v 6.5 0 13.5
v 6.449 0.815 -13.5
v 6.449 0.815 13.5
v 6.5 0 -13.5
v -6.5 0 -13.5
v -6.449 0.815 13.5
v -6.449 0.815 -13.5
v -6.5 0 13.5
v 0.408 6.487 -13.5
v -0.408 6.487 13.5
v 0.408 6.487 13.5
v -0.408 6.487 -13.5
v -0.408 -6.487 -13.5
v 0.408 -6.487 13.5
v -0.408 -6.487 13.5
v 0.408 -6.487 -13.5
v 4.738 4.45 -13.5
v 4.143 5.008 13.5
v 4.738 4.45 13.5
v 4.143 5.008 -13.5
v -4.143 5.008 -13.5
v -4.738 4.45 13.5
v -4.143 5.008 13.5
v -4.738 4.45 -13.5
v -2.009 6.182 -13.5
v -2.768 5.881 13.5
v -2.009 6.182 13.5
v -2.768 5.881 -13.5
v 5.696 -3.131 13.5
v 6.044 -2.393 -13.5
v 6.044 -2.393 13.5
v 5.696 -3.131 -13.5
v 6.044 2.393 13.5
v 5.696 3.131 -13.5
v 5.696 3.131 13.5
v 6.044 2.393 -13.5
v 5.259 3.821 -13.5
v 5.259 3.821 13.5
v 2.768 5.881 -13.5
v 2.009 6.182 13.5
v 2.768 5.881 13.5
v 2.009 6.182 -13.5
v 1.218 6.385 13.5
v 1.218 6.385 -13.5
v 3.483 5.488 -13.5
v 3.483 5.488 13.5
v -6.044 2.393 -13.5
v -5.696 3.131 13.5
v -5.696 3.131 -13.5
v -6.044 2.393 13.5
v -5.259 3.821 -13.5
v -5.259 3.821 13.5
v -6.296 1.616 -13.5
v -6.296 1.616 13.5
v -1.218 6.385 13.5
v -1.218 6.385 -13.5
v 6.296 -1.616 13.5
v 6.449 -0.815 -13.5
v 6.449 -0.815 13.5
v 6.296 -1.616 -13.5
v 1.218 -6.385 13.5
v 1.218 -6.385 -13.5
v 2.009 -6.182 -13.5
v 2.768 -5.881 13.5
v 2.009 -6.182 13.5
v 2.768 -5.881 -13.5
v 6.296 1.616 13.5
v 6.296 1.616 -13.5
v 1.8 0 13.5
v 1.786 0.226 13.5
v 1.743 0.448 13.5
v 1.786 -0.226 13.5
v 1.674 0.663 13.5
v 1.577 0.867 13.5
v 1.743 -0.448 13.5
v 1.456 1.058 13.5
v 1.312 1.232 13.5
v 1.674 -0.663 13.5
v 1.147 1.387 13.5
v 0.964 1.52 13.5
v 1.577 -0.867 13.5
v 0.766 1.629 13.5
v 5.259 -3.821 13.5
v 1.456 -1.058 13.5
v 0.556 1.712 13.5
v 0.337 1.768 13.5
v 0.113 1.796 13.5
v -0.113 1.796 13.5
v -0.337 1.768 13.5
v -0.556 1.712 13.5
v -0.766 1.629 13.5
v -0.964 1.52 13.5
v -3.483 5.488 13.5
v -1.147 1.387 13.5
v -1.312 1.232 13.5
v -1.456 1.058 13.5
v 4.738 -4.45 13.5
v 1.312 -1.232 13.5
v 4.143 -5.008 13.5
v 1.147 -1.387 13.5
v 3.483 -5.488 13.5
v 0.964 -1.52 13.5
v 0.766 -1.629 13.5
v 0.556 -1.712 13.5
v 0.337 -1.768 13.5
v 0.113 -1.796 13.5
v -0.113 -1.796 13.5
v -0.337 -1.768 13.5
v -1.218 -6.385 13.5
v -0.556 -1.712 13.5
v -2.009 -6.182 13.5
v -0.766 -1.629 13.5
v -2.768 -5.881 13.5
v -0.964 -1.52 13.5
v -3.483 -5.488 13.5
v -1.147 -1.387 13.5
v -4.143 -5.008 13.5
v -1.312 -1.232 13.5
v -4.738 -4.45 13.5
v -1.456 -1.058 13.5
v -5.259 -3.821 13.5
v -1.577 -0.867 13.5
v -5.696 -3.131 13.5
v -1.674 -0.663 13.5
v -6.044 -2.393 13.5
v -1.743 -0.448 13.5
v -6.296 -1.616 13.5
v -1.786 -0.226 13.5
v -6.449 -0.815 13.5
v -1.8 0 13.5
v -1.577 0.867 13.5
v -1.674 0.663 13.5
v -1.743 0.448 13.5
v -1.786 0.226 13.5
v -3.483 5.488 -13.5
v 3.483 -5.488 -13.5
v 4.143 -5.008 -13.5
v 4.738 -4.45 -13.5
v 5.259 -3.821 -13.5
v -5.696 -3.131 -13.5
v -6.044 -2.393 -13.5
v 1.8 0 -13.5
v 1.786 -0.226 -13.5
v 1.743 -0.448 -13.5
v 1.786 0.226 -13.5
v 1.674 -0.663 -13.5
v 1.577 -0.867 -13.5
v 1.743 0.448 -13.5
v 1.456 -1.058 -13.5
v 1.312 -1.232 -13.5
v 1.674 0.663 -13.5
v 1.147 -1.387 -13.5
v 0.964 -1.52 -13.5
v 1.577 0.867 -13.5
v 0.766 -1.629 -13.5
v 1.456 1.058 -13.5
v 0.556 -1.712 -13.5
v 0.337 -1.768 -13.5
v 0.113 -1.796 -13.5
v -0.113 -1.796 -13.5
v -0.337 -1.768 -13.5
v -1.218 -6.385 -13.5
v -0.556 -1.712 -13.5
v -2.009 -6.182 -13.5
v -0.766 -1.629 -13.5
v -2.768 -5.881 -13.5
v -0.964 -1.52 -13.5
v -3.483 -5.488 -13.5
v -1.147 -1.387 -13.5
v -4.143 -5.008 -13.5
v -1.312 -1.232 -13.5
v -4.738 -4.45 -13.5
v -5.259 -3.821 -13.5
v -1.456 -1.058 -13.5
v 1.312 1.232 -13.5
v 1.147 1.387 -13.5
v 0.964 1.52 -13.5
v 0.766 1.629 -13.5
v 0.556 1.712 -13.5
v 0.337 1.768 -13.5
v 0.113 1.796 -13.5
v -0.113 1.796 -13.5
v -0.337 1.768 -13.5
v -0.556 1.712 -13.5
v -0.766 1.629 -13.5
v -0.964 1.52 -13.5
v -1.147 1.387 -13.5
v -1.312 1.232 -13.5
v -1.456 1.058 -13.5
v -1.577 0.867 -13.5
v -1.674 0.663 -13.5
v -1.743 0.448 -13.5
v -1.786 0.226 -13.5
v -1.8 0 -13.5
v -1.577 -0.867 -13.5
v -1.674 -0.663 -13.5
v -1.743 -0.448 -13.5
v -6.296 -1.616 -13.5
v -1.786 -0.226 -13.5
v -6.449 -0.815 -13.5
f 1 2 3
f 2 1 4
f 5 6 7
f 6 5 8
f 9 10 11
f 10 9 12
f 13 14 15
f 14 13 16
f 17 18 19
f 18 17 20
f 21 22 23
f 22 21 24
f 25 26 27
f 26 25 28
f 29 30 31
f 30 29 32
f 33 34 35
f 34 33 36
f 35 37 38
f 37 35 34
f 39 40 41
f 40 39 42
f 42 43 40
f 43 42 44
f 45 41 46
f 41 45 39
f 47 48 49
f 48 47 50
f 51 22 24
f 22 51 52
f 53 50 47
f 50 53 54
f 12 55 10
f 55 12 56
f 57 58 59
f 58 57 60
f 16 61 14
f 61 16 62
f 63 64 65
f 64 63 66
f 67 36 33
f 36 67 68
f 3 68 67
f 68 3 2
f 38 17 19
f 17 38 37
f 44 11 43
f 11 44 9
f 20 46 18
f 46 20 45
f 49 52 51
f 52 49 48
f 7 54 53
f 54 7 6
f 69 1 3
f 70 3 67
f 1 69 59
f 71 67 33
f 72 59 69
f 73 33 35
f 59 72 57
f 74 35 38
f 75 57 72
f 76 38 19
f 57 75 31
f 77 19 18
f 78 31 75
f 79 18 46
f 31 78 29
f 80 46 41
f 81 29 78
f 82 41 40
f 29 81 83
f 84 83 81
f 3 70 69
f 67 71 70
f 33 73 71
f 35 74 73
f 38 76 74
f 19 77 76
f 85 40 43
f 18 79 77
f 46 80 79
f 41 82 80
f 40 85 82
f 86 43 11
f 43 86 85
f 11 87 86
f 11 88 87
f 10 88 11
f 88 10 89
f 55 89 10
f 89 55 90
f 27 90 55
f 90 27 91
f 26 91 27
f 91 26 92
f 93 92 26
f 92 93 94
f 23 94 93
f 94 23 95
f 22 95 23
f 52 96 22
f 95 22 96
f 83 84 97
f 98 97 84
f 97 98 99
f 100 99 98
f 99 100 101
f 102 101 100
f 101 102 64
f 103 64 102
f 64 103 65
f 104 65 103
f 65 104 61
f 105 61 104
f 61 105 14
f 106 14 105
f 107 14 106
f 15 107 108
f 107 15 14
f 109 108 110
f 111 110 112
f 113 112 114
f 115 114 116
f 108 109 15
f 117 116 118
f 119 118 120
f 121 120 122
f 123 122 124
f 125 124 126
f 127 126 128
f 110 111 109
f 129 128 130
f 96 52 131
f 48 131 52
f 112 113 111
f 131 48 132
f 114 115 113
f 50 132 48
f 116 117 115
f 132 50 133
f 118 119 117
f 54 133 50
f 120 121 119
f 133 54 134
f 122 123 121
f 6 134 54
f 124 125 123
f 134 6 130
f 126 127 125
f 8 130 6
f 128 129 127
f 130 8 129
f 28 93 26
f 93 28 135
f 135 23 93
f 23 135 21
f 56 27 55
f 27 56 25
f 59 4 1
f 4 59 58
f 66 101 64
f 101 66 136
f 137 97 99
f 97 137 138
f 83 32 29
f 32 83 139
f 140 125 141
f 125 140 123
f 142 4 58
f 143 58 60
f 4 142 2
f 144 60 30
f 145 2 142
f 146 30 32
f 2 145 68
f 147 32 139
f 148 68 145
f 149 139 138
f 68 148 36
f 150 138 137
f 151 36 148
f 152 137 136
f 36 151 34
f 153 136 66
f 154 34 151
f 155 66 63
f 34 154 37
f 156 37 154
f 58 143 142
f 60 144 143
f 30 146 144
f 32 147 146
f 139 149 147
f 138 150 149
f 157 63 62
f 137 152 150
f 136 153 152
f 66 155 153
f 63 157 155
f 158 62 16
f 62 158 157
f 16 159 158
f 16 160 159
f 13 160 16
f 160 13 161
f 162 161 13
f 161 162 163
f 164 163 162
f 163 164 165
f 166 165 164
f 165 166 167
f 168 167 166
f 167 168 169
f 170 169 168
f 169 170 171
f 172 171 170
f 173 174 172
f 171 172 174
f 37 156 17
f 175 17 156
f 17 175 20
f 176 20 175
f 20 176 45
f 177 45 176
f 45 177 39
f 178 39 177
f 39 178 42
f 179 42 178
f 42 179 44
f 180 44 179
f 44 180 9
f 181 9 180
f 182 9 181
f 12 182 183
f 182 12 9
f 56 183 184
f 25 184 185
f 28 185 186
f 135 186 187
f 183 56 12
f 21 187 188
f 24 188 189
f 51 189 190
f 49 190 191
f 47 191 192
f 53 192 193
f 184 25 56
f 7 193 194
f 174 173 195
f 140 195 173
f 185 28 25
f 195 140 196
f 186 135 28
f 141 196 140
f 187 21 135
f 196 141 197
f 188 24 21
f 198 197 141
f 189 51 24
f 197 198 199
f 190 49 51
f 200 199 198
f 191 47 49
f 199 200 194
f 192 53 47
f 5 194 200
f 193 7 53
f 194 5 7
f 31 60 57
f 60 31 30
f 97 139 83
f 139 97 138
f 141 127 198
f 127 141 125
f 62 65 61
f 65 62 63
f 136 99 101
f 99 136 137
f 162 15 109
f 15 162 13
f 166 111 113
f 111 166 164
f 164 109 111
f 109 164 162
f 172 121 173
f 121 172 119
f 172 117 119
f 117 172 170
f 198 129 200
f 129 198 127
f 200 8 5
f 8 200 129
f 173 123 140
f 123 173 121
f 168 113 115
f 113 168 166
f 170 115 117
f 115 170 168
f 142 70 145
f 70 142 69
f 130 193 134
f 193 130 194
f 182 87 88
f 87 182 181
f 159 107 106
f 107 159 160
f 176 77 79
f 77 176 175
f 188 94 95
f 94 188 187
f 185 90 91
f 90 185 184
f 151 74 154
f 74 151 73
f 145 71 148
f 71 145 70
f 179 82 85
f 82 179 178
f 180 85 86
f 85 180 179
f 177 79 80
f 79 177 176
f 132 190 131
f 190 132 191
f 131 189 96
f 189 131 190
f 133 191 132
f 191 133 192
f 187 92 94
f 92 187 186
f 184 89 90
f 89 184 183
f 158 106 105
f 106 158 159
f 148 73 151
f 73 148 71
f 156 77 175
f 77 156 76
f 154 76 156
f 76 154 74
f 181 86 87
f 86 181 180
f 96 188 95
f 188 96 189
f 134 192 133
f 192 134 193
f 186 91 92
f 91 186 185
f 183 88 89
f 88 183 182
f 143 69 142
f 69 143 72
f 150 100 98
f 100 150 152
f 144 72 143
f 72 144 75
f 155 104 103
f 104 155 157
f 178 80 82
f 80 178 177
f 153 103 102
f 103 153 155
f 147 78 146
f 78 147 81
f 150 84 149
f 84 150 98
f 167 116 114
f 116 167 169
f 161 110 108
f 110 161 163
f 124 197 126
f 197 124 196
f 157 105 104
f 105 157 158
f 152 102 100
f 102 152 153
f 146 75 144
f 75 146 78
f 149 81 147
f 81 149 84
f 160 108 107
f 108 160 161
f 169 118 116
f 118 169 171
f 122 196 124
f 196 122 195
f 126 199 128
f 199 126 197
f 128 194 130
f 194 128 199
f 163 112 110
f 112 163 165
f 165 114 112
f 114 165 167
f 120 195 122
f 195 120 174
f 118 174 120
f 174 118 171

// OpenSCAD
$fn = 50;


difference() {
	union() {
		translate(v = [0, 0, -13.5000000000]) {
			cylinder(h = 27, r = 6.5000000000);
		}
	}
	union() {
		translate(v = [0, 0, -100.0000000000]) {
			cylinder(h = 200, r = 1.8000000000);
		}
	}
}
